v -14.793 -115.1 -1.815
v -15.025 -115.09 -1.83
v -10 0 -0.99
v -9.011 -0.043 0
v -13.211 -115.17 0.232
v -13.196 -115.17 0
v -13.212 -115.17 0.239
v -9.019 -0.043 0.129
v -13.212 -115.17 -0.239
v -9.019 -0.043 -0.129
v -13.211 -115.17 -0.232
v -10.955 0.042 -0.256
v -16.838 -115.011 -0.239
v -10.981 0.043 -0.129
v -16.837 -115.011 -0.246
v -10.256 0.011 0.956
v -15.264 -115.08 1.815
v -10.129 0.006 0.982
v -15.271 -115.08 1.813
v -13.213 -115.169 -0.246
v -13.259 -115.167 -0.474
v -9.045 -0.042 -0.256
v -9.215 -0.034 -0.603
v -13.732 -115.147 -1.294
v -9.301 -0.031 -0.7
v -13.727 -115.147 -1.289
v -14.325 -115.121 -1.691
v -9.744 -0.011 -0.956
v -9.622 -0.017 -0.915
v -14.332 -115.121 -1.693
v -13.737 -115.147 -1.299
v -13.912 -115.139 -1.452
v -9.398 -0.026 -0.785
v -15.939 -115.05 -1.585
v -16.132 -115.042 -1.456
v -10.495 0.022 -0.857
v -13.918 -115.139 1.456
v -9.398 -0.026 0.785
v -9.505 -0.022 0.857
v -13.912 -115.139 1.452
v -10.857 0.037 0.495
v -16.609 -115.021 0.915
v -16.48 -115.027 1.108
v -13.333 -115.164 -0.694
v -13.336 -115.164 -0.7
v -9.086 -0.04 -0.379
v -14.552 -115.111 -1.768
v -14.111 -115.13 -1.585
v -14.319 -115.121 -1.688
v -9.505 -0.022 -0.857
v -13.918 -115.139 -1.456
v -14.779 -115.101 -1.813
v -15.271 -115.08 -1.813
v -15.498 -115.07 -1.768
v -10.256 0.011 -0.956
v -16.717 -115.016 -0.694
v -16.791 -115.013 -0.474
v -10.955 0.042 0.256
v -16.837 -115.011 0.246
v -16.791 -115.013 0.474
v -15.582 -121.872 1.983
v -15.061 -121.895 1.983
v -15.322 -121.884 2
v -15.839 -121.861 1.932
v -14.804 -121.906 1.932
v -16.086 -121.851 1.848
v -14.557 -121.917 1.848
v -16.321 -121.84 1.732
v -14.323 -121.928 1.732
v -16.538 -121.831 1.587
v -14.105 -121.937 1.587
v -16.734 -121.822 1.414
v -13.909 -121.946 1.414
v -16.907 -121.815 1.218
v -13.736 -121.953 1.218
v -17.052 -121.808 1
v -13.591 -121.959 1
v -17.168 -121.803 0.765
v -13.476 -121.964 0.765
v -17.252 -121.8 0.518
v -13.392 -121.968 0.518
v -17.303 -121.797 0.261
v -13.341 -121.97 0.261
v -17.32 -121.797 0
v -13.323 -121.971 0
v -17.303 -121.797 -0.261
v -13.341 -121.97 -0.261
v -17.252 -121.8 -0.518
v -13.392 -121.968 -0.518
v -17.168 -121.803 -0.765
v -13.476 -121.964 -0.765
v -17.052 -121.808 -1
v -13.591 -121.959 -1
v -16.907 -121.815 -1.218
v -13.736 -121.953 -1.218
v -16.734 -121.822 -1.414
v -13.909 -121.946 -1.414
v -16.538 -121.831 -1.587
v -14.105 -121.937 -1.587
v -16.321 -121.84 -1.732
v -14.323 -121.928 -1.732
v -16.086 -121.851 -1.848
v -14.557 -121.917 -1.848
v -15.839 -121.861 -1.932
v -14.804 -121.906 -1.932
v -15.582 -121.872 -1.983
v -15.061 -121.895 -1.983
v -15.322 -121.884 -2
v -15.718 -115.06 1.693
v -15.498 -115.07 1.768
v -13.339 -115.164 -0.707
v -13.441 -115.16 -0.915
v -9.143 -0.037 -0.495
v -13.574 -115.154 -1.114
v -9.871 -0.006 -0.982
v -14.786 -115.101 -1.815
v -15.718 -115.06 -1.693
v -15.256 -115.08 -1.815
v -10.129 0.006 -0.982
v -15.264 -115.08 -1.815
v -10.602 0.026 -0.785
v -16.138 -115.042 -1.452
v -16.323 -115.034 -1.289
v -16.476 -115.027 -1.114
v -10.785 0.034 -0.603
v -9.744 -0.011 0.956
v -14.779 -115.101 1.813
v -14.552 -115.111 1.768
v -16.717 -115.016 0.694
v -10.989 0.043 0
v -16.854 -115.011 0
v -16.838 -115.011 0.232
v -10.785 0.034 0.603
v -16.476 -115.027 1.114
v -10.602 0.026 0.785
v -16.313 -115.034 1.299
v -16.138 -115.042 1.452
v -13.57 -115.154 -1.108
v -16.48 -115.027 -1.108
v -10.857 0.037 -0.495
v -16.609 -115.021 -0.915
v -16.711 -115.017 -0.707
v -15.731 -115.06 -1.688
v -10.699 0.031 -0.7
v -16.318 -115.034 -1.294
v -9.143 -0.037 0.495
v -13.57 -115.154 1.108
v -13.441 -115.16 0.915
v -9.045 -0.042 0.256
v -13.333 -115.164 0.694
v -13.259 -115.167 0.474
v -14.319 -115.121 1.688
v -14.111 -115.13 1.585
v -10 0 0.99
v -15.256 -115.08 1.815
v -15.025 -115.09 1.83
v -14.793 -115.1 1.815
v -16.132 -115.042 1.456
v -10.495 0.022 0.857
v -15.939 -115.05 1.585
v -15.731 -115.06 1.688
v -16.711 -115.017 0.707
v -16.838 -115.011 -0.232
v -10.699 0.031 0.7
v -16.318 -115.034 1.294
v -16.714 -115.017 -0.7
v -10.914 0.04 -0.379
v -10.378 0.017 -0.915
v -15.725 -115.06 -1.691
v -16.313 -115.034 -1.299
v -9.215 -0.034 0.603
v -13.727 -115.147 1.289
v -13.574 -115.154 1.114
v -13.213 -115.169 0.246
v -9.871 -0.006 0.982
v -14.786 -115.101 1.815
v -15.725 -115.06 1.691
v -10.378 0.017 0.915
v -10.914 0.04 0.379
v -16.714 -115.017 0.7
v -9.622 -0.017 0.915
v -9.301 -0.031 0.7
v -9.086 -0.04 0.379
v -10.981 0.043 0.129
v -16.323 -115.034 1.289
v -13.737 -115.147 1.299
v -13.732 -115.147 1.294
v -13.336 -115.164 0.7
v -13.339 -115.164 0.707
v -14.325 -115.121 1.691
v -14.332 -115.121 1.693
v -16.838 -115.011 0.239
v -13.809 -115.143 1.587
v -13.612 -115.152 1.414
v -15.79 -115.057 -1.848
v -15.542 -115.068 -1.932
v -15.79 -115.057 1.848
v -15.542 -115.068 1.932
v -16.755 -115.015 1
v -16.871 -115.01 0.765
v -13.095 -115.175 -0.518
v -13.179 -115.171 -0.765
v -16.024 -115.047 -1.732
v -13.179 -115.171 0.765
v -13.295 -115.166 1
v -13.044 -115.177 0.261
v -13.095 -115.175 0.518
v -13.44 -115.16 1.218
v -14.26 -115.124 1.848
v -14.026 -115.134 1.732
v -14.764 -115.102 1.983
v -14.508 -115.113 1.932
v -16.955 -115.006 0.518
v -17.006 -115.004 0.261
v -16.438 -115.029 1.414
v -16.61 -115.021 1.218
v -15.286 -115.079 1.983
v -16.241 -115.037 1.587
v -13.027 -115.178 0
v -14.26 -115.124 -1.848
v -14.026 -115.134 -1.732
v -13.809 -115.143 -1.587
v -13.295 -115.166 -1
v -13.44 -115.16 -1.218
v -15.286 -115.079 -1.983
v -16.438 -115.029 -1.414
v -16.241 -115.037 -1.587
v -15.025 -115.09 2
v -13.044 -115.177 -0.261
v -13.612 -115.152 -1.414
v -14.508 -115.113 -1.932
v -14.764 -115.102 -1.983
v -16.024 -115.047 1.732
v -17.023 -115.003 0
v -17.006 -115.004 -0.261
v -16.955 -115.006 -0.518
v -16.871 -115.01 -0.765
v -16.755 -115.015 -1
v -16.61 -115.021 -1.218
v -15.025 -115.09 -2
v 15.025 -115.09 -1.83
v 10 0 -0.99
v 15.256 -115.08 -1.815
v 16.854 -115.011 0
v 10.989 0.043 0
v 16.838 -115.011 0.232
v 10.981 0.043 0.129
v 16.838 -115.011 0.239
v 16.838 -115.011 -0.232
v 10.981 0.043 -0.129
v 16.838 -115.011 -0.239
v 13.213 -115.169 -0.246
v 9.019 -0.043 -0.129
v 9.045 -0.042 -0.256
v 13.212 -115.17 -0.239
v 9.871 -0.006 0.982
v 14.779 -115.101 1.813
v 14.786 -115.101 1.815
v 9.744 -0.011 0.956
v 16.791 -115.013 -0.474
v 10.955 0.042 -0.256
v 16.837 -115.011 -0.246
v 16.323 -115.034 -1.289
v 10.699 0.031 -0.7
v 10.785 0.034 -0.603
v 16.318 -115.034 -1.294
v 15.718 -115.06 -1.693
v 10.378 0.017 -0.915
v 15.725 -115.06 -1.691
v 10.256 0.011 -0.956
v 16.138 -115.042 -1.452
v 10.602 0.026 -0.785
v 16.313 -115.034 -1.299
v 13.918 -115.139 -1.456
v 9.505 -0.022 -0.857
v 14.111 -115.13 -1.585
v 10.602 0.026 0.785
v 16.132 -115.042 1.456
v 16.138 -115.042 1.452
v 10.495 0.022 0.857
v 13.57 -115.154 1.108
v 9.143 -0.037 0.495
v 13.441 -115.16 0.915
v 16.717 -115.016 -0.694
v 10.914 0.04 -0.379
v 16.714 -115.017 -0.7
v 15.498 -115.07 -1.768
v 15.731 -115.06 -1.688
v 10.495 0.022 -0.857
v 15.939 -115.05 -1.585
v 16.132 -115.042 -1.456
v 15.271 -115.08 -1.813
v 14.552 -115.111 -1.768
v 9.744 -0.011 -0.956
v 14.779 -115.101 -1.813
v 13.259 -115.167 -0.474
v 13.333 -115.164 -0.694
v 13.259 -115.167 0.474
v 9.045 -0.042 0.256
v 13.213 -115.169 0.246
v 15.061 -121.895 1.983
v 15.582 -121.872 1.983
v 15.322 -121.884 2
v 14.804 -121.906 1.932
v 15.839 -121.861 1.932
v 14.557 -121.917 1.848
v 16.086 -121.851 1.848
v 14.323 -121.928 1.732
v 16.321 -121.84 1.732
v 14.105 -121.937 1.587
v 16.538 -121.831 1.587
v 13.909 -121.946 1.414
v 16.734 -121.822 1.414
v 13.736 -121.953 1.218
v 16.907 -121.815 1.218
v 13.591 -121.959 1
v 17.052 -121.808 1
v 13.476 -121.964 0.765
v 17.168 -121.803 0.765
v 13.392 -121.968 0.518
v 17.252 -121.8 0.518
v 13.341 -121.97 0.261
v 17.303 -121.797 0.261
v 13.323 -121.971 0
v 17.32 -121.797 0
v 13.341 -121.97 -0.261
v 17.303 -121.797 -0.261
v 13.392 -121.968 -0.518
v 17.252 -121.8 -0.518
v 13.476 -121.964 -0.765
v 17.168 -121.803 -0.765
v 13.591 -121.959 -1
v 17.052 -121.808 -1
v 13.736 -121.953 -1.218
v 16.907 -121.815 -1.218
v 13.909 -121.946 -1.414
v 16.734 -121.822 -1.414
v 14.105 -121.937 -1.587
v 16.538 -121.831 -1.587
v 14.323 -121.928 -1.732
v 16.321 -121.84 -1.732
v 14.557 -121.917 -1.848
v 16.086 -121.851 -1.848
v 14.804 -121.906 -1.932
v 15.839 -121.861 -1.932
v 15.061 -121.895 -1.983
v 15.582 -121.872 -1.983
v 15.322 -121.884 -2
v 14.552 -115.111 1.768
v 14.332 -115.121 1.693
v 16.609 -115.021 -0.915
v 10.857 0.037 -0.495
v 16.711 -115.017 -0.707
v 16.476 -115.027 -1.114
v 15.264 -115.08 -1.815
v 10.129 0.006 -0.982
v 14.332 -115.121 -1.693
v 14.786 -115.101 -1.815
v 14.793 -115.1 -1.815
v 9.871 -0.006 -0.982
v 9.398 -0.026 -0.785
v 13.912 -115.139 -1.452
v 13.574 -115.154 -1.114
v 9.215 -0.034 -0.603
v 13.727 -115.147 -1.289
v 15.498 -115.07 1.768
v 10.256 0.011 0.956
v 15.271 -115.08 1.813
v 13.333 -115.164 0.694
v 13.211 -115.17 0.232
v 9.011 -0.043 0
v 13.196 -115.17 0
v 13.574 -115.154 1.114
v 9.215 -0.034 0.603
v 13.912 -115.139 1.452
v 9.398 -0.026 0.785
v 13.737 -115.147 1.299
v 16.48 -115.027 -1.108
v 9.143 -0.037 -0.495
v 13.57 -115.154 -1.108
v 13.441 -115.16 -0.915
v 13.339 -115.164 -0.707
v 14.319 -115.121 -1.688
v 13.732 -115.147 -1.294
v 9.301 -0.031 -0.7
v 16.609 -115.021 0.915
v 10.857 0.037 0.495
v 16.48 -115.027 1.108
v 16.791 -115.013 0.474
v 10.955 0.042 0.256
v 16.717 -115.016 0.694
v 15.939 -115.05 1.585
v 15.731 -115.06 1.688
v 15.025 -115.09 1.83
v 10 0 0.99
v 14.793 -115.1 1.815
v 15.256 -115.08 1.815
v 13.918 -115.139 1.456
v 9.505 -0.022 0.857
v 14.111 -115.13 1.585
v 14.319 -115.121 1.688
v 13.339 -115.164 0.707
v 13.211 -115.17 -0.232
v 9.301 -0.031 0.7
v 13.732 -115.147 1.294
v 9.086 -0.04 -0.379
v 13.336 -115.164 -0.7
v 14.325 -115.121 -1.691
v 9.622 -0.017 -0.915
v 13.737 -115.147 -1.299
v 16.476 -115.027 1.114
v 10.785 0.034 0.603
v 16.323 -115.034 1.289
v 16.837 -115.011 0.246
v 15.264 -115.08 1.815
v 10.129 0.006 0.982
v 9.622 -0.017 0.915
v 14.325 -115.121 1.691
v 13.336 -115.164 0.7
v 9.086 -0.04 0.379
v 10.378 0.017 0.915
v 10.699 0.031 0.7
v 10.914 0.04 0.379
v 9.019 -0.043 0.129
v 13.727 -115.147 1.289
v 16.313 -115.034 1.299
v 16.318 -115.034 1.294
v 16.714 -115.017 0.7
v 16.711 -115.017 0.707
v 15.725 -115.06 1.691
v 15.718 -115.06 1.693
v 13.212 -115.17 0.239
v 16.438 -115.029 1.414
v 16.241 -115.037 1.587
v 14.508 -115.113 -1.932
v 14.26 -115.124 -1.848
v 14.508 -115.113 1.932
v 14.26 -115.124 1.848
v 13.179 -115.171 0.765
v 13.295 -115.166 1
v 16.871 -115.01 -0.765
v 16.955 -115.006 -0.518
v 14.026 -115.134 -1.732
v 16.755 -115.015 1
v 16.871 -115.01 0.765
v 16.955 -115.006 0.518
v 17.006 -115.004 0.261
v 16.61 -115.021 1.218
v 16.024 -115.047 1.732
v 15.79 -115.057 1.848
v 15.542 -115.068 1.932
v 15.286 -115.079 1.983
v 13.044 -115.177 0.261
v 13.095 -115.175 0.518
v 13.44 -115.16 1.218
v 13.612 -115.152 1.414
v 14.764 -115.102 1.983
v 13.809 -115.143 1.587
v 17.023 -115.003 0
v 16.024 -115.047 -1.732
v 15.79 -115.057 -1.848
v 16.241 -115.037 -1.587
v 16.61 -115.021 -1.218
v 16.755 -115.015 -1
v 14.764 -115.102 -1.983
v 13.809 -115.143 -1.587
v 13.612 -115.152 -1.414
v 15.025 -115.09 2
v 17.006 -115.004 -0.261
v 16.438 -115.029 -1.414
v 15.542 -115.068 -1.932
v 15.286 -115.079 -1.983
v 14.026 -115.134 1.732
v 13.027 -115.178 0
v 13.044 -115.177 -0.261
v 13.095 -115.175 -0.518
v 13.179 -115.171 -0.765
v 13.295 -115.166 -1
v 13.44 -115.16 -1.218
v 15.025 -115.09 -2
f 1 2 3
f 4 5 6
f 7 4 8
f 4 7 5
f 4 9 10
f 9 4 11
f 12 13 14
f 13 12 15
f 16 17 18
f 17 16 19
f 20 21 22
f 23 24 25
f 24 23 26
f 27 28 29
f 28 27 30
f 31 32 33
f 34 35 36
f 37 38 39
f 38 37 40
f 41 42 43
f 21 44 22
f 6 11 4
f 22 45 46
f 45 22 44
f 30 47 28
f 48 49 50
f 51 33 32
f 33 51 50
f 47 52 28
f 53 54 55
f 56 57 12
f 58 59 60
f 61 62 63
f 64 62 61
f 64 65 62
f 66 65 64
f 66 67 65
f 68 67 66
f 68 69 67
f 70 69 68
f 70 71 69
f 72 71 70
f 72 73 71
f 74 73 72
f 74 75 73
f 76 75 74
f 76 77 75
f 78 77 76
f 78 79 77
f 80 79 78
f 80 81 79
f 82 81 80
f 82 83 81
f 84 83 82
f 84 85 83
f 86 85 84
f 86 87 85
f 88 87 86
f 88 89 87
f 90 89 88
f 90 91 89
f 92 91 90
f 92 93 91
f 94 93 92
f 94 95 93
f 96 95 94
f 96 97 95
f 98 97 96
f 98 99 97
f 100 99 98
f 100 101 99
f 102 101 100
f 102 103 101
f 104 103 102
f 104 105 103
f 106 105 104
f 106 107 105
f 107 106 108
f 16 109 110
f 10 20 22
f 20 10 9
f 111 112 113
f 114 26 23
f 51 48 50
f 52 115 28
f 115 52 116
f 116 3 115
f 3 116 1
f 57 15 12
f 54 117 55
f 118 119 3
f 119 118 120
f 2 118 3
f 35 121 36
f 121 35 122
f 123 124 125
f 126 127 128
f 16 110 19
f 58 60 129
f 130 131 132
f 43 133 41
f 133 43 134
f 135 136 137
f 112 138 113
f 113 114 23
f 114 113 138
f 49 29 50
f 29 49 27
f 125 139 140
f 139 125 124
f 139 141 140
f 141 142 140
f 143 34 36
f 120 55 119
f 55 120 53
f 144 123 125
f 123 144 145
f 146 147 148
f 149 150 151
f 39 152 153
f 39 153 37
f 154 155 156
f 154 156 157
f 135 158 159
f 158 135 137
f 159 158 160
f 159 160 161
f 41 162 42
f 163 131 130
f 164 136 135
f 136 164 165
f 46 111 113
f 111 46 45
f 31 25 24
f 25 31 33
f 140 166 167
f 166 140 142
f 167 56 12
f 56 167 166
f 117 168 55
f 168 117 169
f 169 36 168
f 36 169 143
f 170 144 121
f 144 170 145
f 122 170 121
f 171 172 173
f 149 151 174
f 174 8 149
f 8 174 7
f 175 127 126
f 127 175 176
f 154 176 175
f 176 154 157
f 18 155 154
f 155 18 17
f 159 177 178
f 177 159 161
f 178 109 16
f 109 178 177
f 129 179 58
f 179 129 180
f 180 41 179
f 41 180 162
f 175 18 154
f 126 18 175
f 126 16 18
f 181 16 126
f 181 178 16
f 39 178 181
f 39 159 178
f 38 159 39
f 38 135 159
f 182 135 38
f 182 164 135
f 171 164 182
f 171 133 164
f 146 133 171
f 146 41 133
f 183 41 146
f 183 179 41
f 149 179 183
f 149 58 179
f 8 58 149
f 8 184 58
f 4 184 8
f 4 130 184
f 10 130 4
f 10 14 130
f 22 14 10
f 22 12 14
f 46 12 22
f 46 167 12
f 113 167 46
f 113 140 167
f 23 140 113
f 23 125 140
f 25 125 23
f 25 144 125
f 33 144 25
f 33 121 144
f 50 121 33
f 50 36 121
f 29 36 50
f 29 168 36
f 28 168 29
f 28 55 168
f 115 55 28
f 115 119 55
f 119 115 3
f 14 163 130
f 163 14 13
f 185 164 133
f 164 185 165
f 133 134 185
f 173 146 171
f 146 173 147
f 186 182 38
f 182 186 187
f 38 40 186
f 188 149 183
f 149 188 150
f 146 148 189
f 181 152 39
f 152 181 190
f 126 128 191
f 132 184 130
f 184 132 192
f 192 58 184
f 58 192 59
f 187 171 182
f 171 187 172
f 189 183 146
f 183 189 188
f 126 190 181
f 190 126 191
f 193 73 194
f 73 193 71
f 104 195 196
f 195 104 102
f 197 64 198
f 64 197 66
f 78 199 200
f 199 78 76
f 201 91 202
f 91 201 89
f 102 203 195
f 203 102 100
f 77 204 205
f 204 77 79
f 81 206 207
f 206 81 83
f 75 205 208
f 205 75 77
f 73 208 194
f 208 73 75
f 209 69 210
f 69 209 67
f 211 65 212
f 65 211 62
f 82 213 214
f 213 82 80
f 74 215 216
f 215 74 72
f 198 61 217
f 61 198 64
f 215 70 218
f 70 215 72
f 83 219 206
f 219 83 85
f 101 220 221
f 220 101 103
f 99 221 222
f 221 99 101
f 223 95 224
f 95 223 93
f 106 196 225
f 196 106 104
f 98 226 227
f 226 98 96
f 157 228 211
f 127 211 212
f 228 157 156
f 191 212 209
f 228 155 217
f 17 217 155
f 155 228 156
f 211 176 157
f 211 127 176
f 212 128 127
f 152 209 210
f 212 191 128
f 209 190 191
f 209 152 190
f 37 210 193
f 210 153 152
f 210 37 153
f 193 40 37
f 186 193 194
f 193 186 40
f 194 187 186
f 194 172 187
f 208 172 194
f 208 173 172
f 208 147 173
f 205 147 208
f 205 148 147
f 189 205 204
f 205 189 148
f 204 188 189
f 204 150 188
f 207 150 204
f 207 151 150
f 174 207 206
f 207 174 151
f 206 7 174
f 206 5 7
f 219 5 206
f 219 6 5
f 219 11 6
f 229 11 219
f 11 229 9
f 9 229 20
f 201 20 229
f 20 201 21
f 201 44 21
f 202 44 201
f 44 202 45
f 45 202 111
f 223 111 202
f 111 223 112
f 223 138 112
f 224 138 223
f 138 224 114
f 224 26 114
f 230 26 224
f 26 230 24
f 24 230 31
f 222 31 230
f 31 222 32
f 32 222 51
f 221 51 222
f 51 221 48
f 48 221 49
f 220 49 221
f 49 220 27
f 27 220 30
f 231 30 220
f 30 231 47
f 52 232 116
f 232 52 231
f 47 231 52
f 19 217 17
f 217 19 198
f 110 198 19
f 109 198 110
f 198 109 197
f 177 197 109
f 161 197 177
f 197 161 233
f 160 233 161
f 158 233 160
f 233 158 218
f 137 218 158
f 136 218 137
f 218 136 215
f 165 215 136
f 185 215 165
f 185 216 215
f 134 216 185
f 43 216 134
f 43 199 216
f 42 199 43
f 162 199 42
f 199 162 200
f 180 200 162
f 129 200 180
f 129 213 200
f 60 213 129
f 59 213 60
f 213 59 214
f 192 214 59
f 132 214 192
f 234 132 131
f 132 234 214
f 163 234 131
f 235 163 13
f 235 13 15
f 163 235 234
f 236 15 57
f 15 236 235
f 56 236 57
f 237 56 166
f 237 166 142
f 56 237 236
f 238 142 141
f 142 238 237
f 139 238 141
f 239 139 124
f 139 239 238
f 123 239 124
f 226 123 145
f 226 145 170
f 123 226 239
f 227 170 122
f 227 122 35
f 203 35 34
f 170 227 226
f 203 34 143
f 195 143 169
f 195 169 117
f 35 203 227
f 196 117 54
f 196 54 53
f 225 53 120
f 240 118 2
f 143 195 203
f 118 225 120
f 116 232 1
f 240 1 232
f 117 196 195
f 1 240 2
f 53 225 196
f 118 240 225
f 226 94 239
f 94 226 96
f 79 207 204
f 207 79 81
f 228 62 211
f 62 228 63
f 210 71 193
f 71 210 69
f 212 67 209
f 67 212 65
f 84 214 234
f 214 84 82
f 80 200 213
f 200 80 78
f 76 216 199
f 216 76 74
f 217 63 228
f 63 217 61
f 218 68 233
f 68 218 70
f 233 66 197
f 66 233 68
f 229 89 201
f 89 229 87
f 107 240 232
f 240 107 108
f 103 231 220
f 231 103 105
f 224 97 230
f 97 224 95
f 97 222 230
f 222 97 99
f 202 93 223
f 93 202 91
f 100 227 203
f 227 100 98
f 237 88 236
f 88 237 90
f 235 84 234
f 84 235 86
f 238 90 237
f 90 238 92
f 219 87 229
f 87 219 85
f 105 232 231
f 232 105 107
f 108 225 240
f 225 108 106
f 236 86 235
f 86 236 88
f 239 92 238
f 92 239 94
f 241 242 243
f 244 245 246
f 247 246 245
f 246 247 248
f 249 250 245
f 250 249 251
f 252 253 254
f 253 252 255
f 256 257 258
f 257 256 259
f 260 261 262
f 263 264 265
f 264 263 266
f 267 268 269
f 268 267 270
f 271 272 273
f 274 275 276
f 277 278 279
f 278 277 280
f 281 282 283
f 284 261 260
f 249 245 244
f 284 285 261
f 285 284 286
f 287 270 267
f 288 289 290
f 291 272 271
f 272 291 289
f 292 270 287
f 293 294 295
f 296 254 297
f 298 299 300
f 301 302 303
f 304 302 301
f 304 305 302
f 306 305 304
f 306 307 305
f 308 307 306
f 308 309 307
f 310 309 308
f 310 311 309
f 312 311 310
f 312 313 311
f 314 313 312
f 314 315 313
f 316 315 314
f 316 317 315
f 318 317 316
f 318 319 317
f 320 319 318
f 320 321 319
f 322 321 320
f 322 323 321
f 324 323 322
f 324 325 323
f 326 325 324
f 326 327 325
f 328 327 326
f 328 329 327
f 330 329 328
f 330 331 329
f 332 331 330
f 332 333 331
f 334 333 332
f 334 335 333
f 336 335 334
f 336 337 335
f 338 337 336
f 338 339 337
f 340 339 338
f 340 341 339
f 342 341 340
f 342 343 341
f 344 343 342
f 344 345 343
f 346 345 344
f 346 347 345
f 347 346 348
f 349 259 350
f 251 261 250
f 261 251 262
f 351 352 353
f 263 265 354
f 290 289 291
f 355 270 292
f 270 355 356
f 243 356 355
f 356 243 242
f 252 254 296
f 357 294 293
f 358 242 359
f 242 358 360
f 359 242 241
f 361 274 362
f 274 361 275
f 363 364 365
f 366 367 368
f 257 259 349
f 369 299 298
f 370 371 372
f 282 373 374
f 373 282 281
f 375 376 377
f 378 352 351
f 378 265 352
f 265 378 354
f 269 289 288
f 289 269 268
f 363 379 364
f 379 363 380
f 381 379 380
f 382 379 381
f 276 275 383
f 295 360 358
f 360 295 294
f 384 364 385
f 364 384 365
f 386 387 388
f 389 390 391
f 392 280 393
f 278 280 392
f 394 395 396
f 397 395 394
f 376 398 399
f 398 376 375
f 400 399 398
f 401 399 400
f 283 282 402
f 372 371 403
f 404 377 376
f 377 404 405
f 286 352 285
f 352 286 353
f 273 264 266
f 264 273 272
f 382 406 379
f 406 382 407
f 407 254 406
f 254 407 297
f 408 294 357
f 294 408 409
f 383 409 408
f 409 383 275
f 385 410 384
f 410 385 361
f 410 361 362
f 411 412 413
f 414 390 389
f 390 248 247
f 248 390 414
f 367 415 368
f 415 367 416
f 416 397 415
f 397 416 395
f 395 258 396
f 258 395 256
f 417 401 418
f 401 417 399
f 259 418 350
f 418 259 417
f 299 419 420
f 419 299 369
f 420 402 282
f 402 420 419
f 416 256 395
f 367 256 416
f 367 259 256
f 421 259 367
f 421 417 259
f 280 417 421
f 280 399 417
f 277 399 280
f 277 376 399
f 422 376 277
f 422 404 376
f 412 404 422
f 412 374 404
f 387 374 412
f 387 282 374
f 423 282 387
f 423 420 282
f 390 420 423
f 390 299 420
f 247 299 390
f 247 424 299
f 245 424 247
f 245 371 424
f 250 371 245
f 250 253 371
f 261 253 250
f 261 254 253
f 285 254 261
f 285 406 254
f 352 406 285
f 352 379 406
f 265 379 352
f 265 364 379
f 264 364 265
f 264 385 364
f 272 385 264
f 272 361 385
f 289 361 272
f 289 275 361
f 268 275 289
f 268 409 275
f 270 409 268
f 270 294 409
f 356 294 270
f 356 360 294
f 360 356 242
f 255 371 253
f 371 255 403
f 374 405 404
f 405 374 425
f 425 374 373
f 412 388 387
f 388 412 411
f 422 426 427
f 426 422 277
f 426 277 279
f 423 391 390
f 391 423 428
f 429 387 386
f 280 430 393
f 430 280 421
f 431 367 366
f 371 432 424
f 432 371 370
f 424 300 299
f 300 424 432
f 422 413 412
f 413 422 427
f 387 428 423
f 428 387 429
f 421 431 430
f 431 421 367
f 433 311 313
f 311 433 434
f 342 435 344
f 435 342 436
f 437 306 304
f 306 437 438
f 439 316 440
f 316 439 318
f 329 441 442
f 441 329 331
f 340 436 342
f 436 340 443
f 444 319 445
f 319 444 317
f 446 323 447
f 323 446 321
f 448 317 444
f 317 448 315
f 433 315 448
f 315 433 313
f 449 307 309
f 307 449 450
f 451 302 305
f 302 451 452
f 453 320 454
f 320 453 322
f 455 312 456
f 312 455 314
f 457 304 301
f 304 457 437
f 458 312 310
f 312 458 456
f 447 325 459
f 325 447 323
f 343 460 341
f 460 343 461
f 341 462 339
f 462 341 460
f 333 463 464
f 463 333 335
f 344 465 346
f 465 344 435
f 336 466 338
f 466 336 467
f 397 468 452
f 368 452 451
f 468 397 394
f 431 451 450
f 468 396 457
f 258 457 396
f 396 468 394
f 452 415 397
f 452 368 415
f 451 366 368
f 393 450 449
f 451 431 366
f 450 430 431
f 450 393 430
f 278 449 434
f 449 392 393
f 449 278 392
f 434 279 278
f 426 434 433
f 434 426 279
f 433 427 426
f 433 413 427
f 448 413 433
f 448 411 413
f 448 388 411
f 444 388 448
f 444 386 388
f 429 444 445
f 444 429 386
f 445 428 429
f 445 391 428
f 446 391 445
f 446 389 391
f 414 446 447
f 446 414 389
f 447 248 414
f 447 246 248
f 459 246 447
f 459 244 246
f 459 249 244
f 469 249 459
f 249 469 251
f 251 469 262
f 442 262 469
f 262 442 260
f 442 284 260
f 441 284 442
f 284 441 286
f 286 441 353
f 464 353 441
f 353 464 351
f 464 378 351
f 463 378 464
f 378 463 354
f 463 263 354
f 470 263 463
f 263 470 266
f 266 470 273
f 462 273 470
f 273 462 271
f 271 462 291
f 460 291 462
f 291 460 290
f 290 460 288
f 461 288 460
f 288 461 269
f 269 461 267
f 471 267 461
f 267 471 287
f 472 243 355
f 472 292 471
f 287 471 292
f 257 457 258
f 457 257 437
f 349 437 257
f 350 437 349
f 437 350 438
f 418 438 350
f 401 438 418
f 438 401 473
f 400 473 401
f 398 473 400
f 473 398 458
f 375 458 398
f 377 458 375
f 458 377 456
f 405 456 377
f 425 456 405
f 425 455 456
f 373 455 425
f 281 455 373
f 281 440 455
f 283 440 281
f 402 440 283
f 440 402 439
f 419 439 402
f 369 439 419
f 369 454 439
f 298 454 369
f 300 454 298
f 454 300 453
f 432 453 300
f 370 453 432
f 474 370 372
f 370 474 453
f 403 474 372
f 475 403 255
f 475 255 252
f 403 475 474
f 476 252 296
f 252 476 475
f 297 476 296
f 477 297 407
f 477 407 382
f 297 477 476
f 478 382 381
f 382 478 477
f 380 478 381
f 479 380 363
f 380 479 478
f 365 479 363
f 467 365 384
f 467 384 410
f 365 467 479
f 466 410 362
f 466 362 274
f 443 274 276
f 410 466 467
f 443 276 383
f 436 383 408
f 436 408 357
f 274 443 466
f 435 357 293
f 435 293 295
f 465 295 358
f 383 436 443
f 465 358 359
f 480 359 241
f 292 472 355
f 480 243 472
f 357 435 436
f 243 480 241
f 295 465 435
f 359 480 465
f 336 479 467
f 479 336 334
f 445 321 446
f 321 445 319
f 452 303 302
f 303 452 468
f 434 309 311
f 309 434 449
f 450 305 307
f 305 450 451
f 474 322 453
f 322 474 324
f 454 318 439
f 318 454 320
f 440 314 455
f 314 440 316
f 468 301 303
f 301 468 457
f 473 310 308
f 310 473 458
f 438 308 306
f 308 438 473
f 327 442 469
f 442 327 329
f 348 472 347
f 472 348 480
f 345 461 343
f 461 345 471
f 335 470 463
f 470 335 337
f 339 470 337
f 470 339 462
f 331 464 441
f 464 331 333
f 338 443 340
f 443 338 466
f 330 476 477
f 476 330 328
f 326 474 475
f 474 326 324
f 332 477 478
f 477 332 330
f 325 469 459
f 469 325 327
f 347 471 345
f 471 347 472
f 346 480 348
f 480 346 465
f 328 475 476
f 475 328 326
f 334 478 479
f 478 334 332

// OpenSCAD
/*
    ALMOND PASTRY PROJECT
    CHOPSTICKS

    This model is based on the proportions used
    in the Three.js eating animation.

    Approximate conversion:
    1 Three.js unit = 17.93 mm

    Export workflow:
    1. Set MODE.
    2. Press F6.
    3. File > Export > Export as STL.
*/


// ============================================================
// GLOBAL QUALITY
// ============================================================

$fn = 48;


// ============================================================
// EXPORT MODE
// ============================================================

// Available:
// "preview_pair"
// "single_chopstick"
// "pair"

MODE = "preview_pair";


// ============================================================
// MAIN DIMENSIONS
// ============================================================

// Total chopstick length.
CHOPSTICK_LENGTH = 122;

// Radius at the thick rear end.
REAR_RADIUS = 1.88;

// Radius at the gripping tip.
TIP_RADIUS = 0.99;

// Decorative rear cap length.
CAP_LENGTH = 6.8;

// Decorative rear cap radius.
CAP_RADIUS = 2.0;


// ============================================================
// PAIR SETTINGS
// ============================================================

// Distance between the two chopsticks in preview mode.
PAIR_GAP = 20;

// Small angle used to make the pair look more natural.
PAIR_ANGLE = 2.5;


// ============================================================
// SINGLE CHOPSTICK BODY
// ============================================================

module chopstick_body() {

    /*
        OpenSCAD cylinders grow along Z.
        The thin end is placed at Z = 0.
    */

    cylinder(
        h = CHOPSTICK_LENGTH,
        r1 = TIP_RADIUS,
        r2 = REAR_RADIUS
    );
}


// ============================================================
// REAR DECORATIVE CAP
// ============================================================

module chopstick_cap() {

    translate([
        0,
        0,
        CHOPSTICK_LENGTH - CAP_LENGTH
    ])

    cylinder(
        h = CAP_LENGTH,
        r = CAP_RADIUS
    );
}


// ============================================================
// COMPLETE SINGLE CHOPSTICK
// ============================================================

module single_chopstick() {

    union() {

        chopstick_body();

        chopstick_cap();
    }
}


// ============================================================
// CHOPSTICK PAIR
// ============================================================

module chopstick_pair() {

    /*
        The pair is separated along X.
        Both tips begin near Z = 0.
    */

    translate([
        -PAIR_GAP / 2,
        0,
        0
    ])

    rotate([
        0,
        -PAIR_ANGLE,
        0
    ])

    single_chopstick();


    translate([
        PAIR_GAP / 2,
        0,
        0
    ])

    rotate([
        0,
        PAIR_ANGLE,
        0
    ])

    single_chopstick();
}


// ============================================================
// PREVIEW VERSION
// ============================================================

module preview_pair() {

    /*
        Rotate the pair so the chopsticks appear horizontal
        in the standard OpenSCAD perspective view.
    */

    rotate([
        90,
        0,
        0
    ])

    chopstick_pair();
}


// ============================================================
// OUTPUT
// ============================================================

if (MODE == "single_chopstick") {

    single_chopstick();

}

else if (MODE == "pair") {

    chopstick_pair();

}

else {

    preview_pair();
}
